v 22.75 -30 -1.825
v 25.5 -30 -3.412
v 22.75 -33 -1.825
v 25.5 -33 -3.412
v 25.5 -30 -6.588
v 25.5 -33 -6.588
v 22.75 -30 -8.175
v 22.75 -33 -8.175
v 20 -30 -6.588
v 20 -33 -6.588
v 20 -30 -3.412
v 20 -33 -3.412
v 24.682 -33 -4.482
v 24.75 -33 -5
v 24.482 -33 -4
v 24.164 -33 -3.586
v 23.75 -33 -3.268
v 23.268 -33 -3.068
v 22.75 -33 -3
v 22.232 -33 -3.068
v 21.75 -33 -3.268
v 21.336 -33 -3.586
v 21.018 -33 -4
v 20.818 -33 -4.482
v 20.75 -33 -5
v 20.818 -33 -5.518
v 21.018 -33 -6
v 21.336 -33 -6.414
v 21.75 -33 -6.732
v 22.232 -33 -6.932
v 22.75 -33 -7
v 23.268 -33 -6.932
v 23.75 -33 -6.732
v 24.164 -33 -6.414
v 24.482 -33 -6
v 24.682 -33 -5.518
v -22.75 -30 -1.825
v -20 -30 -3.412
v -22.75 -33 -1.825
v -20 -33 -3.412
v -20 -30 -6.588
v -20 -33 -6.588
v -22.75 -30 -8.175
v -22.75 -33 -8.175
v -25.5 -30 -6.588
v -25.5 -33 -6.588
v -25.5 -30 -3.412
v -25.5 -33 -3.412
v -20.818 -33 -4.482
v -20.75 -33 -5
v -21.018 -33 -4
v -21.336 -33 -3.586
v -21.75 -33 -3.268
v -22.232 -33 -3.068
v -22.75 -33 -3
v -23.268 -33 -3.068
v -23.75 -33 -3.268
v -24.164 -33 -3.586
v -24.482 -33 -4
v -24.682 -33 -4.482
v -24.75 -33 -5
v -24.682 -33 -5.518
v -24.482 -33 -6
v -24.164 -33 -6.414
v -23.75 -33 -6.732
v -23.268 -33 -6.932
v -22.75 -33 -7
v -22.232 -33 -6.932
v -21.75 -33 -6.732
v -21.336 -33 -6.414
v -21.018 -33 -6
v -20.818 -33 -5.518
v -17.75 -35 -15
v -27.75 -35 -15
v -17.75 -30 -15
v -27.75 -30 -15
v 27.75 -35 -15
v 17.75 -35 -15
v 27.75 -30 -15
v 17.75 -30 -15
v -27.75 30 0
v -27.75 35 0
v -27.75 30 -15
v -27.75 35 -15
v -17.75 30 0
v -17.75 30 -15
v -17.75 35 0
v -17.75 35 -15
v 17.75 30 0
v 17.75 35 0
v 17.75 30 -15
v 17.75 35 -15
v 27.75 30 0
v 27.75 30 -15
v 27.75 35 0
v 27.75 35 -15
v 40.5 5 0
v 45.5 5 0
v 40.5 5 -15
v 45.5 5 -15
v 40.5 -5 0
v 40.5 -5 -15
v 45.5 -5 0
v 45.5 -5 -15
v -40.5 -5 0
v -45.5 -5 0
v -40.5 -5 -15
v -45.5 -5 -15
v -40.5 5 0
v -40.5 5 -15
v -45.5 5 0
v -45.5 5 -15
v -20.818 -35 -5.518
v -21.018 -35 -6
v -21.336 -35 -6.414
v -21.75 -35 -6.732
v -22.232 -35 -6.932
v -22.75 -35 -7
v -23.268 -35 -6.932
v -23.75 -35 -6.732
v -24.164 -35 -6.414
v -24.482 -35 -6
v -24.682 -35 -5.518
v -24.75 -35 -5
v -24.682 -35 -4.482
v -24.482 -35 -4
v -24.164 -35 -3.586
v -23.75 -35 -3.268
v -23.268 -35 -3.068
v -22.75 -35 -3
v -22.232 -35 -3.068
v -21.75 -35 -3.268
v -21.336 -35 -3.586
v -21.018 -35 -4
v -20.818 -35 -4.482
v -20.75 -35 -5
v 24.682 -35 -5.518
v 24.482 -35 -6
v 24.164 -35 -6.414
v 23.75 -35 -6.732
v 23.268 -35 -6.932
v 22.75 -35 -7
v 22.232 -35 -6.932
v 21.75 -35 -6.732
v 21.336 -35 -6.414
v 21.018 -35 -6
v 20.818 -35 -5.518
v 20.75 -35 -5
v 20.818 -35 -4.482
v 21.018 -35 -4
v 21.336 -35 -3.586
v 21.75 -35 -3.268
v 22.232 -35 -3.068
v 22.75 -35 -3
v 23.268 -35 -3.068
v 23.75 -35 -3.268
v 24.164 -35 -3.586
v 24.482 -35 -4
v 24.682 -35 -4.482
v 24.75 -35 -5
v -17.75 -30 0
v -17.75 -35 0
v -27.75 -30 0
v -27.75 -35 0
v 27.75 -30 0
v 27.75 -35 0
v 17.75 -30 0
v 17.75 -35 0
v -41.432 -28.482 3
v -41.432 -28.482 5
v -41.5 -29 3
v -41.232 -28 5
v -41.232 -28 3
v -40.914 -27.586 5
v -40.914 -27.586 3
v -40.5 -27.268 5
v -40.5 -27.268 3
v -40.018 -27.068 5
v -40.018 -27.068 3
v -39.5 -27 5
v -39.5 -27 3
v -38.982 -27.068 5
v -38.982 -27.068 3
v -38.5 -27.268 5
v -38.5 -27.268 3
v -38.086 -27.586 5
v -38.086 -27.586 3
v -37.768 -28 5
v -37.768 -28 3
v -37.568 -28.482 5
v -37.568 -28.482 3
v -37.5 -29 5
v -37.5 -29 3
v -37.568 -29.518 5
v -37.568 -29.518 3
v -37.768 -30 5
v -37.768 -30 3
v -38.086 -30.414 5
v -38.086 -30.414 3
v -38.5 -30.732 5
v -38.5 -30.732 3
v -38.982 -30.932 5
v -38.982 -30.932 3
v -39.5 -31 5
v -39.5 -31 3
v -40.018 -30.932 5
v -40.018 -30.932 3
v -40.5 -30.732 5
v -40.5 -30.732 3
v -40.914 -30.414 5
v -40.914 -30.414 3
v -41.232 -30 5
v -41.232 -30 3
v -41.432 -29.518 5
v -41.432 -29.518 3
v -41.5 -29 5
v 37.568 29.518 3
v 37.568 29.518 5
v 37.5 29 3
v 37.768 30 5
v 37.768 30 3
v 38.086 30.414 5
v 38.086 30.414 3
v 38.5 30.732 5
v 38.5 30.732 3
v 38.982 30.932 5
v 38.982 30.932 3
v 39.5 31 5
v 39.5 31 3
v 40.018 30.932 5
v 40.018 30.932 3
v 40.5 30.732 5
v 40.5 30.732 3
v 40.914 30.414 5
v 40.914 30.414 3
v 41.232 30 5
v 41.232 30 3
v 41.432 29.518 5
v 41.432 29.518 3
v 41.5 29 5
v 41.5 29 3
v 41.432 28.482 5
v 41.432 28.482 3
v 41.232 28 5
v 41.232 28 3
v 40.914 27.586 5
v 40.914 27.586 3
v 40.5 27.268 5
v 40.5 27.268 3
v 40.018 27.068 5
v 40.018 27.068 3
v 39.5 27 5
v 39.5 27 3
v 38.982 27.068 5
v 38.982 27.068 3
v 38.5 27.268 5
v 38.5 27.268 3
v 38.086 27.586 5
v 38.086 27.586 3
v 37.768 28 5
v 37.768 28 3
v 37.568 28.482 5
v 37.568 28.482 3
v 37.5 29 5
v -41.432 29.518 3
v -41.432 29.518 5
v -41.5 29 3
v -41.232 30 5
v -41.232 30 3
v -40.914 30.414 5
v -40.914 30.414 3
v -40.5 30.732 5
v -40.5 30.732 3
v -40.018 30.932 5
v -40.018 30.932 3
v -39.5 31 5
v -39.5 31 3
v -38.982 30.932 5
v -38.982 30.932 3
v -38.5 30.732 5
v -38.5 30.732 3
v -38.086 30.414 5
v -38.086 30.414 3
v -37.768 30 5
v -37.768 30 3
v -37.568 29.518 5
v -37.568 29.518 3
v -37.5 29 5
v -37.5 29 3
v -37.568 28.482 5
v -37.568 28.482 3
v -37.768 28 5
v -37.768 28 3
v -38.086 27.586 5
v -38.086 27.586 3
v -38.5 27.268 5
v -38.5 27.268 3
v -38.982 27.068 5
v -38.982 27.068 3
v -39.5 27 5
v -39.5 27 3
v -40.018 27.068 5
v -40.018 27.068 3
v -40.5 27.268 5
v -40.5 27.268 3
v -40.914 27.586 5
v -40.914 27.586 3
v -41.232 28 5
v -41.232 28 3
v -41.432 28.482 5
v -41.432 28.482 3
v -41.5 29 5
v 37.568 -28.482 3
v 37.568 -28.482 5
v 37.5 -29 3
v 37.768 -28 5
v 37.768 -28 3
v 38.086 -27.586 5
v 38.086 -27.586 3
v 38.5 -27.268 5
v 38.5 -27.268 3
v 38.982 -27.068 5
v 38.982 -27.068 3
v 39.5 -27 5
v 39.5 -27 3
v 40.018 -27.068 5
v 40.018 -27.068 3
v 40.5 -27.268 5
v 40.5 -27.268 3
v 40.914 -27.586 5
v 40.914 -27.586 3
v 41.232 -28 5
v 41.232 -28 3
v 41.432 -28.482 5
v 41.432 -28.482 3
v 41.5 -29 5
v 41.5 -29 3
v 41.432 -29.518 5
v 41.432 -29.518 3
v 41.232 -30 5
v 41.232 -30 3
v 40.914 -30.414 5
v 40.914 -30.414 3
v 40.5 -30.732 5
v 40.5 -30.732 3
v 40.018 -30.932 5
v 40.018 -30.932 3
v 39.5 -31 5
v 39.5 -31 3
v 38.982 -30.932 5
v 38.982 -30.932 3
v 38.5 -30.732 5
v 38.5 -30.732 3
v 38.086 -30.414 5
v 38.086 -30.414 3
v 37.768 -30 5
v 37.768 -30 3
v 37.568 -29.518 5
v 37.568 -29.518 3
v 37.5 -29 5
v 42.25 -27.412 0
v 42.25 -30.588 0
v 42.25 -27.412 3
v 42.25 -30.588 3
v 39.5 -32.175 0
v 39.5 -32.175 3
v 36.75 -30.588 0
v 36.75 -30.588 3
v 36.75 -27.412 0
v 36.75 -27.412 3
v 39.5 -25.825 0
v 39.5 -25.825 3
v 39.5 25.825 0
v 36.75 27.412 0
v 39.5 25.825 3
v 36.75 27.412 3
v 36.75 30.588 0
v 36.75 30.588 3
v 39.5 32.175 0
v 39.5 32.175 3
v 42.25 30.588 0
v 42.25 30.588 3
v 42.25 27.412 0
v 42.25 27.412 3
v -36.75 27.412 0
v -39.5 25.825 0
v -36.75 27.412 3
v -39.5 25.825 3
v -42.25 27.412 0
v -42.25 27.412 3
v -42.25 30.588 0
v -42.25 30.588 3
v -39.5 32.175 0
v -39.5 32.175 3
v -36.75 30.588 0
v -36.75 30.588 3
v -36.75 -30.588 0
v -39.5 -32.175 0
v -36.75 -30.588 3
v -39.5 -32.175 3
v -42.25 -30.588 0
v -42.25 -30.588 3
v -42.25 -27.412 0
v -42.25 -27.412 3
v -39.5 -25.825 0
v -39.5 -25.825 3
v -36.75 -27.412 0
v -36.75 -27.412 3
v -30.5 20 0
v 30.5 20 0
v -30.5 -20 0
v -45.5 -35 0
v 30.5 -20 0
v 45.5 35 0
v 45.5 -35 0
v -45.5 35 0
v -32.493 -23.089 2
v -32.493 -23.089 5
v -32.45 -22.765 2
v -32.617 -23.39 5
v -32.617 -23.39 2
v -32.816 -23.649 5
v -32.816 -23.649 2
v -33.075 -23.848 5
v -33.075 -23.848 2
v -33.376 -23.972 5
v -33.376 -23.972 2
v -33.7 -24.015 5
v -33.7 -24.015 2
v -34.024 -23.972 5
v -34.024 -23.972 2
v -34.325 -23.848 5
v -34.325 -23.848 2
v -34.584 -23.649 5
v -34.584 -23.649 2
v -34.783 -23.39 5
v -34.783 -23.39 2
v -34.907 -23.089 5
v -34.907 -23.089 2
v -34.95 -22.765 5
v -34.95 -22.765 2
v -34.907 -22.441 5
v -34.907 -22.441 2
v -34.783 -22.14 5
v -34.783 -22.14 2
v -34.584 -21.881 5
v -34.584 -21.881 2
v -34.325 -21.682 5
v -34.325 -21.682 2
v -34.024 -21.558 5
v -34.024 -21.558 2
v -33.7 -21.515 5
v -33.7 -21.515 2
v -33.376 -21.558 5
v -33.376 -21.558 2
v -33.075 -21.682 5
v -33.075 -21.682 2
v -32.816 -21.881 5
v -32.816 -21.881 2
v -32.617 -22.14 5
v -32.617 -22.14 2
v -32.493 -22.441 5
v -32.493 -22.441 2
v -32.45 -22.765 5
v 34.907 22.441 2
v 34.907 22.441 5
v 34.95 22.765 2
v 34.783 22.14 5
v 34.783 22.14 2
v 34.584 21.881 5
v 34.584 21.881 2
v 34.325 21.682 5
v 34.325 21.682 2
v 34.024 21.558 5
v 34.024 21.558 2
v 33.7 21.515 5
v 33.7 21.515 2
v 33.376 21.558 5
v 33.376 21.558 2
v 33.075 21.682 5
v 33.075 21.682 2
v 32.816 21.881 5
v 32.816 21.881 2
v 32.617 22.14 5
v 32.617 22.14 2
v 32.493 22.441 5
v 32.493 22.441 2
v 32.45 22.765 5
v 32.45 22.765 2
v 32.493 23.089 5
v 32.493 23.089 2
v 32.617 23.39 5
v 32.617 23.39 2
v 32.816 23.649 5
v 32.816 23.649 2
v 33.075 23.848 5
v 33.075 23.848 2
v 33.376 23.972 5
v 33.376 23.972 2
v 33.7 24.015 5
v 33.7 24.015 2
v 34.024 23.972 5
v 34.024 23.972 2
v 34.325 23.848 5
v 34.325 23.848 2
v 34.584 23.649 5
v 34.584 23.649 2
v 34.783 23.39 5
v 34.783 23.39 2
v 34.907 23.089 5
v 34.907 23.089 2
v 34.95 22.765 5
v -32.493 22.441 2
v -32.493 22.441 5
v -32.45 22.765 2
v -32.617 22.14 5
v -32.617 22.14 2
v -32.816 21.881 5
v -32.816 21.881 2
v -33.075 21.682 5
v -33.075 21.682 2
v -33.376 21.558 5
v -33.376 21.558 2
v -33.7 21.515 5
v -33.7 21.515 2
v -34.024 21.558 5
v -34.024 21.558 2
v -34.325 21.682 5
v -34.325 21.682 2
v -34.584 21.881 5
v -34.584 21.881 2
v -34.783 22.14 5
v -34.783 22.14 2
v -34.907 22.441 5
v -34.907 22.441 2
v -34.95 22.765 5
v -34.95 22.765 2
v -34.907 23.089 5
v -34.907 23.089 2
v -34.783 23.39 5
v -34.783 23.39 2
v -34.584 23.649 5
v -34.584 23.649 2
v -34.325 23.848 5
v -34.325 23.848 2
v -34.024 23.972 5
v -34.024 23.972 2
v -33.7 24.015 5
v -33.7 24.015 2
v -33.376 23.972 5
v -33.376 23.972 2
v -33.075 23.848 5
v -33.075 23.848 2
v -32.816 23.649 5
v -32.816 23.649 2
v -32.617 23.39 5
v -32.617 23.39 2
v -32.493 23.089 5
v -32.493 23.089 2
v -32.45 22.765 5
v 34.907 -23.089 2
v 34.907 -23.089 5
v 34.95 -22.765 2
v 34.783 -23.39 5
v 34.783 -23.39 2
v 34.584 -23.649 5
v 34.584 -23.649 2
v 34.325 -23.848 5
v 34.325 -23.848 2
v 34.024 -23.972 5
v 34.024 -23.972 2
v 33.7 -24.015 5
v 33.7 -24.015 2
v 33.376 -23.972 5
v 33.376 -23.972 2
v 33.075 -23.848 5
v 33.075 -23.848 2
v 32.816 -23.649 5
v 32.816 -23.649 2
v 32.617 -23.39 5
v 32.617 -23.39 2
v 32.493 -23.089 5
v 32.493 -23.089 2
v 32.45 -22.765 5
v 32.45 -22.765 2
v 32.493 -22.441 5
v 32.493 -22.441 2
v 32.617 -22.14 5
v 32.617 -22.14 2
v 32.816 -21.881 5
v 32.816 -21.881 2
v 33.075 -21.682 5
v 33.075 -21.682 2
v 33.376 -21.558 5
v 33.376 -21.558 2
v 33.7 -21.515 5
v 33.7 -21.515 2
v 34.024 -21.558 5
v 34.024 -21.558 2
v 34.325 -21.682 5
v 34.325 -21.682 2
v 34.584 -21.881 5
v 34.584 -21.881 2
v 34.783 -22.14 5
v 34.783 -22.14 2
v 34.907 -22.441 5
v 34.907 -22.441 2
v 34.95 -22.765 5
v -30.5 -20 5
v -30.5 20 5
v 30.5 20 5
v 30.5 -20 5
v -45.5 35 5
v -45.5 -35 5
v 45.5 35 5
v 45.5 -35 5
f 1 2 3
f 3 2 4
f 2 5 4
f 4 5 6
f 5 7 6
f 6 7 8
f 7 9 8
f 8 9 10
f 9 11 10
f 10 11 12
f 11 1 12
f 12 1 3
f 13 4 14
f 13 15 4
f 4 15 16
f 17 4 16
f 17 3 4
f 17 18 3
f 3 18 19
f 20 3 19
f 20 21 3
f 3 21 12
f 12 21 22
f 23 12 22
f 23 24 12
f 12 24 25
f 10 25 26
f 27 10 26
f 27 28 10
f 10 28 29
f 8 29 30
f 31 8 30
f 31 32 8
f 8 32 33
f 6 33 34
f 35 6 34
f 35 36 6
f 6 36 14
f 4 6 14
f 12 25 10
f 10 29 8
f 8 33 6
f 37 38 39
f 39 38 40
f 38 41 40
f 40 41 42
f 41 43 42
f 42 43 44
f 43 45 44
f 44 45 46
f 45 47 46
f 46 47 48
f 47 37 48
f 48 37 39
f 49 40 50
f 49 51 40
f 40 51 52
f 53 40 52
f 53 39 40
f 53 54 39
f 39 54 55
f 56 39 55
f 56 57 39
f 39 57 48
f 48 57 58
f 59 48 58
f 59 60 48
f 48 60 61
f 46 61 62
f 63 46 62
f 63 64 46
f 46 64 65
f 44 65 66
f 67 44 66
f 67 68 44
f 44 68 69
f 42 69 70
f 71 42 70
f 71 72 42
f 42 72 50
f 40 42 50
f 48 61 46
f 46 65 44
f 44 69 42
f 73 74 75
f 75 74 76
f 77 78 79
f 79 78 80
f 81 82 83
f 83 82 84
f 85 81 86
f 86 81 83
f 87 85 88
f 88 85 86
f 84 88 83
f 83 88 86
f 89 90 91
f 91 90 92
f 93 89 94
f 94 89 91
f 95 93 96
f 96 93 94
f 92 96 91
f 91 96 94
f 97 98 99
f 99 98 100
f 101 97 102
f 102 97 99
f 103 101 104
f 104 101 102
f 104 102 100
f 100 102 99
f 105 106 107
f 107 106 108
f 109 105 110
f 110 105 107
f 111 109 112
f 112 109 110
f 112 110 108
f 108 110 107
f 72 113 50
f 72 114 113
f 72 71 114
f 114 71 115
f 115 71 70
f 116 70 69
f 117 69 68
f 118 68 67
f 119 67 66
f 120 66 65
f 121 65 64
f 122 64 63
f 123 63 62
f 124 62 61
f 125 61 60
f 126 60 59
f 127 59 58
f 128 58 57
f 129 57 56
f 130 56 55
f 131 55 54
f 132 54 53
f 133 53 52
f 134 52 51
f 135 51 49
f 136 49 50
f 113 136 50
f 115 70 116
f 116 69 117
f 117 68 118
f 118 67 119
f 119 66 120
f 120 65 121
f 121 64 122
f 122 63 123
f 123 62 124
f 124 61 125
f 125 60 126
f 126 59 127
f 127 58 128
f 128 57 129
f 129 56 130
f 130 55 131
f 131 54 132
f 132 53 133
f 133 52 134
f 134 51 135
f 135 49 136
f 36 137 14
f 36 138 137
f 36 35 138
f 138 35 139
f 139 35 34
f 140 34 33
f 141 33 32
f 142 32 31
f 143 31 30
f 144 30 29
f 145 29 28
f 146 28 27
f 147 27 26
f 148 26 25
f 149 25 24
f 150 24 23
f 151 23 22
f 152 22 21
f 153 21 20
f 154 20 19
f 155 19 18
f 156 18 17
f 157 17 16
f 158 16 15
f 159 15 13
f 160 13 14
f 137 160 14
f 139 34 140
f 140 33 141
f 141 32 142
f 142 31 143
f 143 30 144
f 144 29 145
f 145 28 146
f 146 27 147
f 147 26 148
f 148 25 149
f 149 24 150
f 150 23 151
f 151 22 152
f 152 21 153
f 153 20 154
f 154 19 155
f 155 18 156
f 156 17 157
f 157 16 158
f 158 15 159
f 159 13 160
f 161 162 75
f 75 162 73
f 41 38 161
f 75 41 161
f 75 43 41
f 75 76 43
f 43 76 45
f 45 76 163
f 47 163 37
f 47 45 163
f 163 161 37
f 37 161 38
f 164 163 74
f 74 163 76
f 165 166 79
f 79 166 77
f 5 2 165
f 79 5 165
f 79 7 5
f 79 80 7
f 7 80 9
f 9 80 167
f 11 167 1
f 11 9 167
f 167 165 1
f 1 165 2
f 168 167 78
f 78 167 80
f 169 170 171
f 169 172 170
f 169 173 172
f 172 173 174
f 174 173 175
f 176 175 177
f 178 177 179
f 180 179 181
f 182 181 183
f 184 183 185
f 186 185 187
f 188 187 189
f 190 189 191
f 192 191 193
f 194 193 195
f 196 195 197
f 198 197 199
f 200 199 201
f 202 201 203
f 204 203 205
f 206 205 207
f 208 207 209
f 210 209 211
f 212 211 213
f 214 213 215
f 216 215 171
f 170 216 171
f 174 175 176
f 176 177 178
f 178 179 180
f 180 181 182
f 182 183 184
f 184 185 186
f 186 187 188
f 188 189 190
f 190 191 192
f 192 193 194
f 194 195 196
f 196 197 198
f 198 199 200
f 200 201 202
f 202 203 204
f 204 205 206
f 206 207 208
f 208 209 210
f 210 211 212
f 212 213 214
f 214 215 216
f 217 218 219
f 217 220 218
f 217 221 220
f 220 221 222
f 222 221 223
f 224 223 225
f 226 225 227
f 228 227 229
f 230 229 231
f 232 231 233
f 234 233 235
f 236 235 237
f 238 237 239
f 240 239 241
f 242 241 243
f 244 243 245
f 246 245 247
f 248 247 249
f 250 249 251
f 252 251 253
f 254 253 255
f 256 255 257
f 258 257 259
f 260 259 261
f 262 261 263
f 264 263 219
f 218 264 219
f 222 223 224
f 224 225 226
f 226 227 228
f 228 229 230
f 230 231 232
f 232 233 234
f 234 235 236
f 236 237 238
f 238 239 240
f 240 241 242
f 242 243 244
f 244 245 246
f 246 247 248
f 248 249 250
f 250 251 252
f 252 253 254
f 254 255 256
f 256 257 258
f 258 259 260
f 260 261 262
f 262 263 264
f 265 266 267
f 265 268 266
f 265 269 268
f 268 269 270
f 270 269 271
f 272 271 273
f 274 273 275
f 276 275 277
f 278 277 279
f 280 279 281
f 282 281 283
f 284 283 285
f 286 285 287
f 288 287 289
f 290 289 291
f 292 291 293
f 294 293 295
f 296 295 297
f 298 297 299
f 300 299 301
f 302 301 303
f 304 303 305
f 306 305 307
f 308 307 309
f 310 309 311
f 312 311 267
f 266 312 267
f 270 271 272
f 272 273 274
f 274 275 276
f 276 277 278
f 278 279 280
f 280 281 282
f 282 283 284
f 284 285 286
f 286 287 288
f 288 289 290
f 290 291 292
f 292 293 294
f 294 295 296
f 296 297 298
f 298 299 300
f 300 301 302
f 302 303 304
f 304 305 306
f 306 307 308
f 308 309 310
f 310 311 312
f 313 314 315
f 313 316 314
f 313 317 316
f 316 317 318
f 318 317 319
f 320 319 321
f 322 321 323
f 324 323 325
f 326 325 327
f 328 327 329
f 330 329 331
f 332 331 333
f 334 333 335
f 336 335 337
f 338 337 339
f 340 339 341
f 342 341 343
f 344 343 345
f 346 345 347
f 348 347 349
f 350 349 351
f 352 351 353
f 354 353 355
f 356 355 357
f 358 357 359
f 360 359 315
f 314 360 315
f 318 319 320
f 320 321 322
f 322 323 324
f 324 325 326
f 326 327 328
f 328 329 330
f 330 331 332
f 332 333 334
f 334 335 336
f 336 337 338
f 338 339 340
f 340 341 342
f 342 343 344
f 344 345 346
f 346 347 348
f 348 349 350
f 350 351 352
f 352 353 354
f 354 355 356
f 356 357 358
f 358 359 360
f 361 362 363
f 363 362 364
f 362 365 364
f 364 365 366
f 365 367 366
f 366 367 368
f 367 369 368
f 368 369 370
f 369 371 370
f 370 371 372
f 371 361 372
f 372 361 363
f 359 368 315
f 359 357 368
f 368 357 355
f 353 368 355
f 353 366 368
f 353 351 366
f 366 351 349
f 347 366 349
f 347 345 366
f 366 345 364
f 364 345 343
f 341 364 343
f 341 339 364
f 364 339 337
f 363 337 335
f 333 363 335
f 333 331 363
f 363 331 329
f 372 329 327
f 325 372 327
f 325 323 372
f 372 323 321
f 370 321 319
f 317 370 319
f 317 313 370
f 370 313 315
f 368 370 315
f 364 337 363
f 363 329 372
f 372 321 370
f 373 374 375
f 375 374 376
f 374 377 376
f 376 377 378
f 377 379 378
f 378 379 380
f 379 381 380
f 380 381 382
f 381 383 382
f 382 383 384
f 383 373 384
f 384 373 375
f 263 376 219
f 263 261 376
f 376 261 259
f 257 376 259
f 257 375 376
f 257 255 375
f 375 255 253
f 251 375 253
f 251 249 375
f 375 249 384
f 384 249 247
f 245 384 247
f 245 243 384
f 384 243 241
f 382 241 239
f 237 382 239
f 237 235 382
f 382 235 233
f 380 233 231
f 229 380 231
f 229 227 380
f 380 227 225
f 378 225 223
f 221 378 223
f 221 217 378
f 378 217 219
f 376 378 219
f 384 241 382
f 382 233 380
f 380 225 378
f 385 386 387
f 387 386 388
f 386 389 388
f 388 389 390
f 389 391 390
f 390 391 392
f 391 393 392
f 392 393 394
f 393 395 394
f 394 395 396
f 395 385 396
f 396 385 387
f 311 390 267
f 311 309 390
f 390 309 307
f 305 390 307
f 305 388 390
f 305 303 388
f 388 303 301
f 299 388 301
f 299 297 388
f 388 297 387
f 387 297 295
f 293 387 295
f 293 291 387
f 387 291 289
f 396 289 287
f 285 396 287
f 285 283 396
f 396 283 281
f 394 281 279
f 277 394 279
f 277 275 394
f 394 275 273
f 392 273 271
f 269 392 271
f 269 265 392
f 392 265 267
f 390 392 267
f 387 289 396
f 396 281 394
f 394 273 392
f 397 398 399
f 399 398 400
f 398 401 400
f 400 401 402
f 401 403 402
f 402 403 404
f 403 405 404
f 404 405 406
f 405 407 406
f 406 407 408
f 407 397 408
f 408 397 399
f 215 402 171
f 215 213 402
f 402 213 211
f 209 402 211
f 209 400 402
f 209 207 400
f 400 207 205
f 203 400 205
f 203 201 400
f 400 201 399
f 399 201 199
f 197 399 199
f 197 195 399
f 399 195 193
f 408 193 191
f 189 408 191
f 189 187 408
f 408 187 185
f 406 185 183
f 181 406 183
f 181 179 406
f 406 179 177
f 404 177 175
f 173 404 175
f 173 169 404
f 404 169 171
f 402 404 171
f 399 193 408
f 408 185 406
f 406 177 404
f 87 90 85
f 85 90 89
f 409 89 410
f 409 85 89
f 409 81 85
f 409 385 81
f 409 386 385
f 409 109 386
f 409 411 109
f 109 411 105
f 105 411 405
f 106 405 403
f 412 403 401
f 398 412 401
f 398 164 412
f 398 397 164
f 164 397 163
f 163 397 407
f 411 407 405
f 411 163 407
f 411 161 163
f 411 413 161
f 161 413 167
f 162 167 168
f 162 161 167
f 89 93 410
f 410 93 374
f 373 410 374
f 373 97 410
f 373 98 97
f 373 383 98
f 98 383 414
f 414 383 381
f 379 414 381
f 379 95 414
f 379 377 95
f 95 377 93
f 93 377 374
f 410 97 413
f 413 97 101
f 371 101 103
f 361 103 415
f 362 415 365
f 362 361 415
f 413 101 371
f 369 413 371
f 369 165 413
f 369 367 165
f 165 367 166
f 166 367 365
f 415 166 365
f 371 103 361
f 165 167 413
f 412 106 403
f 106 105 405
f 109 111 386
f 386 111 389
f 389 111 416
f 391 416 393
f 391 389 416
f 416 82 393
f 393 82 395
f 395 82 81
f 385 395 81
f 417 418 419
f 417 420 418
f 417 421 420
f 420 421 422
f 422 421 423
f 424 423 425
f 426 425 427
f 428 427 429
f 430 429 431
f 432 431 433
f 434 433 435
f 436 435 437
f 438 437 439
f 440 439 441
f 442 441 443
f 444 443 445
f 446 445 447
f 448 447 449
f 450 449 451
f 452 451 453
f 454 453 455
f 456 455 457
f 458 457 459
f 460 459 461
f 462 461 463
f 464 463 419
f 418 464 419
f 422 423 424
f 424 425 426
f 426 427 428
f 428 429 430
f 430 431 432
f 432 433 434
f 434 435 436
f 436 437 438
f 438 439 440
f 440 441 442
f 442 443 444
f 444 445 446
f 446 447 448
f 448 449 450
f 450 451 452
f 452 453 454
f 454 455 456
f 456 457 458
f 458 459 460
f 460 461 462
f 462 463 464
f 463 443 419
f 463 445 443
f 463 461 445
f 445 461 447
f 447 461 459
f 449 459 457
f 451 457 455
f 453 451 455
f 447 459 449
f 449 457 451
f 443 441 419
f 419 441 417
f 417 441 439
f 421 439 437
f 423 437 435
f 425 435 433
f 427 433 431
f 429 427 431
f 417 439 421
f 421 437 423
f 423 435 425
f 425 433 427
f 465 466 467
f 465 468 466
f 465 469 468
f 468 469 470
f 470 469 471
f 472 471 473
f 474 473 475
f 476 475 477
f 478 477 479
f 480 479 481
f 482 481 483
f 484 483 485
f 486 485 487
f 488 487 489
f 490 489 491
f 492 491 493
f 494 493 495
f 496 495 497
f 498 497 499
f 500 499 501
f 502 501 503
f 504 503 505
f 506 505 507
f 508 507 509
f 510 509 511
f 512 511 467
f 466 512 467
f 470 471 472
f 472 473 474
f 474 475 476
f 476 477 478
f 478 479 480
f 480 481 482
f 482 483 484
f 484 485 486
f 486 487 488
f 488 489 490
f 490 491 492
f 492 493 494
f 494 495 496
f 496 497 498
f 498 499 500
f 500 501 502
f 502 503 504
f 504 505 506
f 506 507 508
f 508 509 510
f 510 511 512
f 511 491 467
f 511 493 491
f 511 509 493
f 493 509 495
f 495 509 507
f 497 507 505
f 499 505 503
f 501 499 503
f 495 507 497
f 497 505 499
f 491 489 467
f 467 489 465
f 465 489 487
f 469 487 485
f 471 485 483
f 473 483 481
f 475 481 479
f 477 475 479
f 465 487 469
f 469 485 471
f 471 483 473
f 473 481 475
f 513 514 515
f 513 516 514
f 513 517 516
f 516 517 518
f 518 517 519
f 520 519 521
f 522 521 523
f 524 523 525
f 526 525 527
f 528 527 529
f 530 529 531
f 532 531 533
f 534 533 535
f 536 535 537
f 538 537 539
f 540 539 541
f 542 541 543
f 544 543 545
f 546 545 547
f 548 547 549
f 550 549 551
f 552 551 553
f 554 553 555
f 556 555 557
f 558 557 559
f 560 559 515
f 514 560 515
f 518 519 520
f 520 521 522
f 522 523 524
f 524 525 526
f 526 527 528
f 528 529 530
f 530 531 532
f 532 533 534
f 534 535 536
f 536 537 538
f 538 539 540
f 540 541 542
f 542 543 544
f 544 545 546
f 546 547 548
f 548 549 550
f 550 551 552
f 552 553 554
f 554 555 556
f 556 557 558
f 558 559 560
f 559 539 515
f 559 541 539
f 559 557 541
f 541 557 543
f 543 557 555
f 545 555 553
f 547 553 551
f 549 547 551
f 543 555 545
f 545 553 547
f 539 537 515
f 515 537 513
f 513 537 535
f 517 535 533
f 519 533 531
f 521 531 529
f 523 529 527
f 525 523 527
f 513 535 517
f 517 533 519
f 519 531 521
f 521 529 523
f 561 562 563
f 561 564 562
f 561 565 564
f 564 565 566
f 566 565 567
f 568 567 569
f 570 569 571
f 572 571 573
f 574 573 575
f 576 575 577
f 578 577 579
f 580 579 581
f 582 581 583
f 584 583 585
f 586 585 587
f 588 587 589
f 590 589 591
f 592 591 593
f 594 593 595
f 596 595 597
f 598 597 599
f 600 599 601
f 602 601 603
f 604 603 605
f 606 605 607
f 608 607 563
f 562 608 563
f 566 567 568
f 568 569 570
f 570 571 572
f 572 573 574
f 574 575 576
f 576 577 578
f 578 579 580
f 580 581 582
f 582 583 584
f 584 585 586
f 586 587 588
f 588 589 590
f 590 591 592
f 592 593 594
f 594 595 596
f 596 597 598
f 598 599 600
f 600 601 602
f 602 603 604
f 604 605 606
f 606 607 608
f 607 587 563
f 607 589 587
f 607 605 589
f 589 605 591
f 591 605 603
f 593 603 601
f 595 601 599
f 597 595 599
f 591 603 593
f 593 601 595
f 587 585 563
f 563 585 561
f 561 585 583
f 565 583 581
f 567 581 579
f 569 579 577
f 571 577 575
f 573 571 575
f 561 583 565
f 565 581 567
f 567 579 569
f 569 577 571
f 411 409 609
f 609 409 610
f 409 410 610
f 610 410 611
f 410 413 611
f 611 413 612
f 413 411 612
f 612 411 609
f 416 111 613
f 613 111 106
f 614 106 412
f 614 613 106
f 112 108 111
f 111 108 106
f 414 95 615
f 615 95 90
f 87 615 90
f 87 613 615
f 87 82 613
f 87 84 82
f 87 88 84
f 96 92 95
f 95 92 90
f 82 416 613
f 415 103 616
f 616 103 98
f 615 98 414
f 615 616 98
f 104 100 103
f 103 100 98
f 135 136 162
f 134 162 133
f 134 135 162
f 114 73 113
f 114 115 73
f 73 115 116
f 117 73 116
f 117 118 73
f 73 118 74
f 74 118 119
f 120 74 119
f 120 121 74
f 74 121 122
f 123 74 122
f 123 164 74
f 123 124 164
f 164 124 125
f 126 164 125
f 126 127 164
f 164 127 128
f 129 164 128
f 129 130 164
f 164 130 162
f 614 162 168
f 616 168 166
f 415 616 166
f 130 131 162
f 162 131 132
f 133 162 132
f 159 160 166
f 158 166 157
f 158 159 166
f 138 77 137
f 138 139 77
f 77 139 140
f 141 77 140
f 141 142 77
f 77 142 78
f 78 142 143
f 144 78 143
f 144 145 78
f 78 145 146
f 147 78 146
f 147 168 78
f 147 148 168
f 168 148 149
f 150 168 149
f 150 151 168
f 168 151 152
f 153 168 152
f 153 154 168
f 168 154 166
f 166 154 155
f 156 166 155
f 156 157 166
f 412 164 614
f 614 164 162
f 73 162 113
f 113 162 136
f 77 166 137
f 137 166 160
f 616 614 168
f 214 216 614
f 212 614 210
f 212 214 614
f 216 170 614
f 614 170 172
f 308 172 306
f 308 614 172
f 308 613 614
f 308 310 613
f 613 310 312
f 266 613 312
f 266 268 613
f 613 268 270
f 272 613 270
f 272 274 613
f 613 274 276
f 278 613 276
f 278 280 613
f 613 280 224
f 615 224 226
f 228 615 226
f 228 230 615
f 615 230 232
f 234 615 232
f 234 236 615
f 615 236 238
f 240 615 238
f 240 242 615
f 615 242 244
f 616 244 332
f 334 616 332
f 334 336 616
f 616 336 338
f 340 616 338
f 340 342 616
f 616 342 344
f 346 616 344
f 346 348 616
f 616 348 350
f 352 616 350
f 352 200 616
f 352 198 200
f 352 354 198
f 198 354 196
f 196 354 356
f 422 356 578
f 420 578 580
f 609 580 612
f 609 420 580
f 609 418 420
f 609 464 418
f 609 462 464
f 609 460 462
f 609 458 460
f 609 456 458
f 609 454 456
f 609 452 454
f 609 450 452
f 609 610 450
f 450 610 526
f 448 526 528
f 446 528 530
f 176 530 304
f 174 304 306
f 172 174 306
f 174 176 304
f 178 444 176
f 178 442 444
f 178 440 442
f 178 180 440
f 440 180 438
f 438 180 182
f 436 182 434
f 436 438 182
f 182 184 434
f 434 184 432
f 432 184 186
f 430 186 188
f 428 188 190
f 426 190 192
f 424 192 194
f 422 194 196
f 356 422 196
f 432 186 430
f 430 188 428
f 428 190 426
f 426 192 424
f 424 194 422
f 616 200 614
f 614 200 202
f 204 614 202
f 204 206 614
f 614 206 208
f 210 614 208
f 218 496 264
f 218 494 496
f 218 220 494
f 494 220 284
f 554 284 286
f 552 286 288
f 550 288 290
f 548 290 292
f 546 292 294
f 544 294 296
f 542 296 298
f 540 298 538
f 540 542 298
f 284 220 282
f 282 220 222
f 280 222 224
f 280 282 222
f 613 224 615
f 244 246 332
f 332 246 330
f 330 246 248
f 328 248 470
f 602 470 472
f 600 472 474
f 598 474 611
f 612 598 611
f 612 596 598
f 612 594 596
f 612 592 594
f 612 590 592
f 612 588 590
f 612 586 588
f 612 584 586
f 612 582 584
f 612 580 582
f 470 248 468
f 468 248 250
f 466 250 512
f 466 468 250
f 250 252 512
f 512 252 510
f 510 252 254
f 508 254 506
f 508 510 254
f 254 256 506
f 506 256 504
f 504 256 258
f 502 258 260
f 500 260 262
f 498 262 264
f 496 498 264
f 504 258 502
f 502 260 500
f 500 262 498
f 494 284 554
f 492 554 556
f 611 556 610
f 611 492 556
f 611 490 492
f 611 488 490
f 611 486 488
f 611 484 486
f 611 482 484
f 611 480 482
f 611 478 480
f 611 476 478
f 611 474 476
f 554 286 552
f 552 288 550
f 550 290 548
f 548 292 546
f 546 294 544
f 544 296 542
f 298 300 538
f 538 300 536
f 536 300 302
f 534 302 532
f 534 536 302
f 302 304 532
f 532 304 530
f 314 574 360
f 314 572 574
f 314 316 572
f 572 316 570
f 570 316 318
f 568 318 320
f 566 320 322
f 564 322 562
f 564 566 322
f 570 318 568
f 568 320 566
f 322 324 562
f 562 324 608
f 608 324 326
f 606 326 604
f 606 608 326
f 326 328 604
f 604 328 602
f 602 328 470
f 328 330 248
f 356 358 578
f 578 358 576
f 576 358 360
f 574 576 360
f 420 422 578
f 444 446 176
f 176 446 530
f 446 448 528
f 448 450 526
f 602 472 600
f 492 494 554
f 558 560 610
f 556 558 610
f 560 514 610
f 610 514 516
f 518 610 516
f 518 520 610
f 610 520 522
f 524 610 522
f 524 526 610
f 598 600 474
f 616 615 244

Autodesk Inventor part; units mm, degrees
ref_plane "YZ Plane" through (0, 0, 0) normal (1, 0, 0) x (0, 1, 0)
ref_plane "XZ Plane" through (0, 0, 0) normal (0, 1, 0) x (-1, 0, 0)
ref_plane "XY Plane" through (0, 0, 0) normal (0, 0, 1) x (1, 0, 0)
sketch "Sketch1" plane through (0, 0, 0) normal (0, 0, 1) x (1, 0, 0)
  line L0 (-30.5, -20) -> (30.5, -20)
  line L1 (30.5, -20) -> (30.5, 20)
  line L2 (30.5, 20) -> (-30.5, 20)
  line L3 (-30.5, 20) -> (-30.5, -20)
  line L4 (-30.5, -20) -> (30.5, 20) construction
  line L5 (30.5, -20) -> (-30.5, 20) construction
  line L6 (-45.5, -35) -> (45.5, -35)
  line L7 (45.5, -35) -> (45.5, 35)
  line L8 (45.5, 35) -> (-45.5, 35)
  line L9 (-45.5, 35) -> (-45.5, -35)
  line L10 (-45.5, -35) -> (45.5, 35) construction
  line L11 (45.5, -35) -> (-45.5, 35) construction
  point P0 (0, 0)
  dimension "d0" = 61
  dimension "d1" = 40
  dimension "d2" = 15
  dimension "d3" = 15
extrude "Rim" add sketch "Sketch1" along normal blind 5
sketch "Sketch2" plane through (0, 0, 5) normal (0, 0, 1) x (1, 0, 0)
  line L0 (-33.7, -22.765) -> (33.7, -22.765) construction
  line L1 (33.7, -22.765) -> (33.7, 22.765) construction
  line L2 (33.7, 22.765) -> (-33.7, 22.765) construction
  line L3 (-33.7, 22.765) -> (-33.7, -22.765) construction
  line L4 (-33.7, -22.765) -> (33.7, 22.765) construction
  line L5 (33.7, -22.765) -> (-33.7, 22.765) construction
  circle A0 centre (33.7, 22.765) radius 1.25
  line L6 (0, 22.765) -> (0, -22.765) construction
  line L7 (-30.5, -20) -> (-30.5, 20) projected
  line L8 (-30.5, 0) -> (33.7, 0) construction
  circle A1 centre (-33.7, 22.765) radius 1.25
  circle A2 centre (33.7, -22.765) radius 1.25
  circle A3 centre (-33.7, -22.765) radius 1.25
  point P0 (0, 0)
  dimension "d6" = 67.4
  dimension "d7" = 45.53
  dimension "d8" = 2.5
extrude "Pegs" cut sketch "Sketch2" against normal blind 3
sketch "Sketch3" plane through (0, 0, 0) normal (0, 0, -1) x (-1, 0, 0)
  line L0 (-39.5, 25.8246) -> (-42.25, 27.4123)
  line L1 (-36.75, 27.4123) -> (-39.5, 25.8246)
  line L2 (-42.25, 27.4123) -> (-42.25, 30.5877)
  line L3 (-36.75, 30.5877) -> (-36.75, 27.4123)
  circle A0 centre (-39.5, 29) radius 2
  line L4 (-39.5, 32.1754) -> (-36.75, 30.5877)
  line L5 (-42.25, 30.5877) -> (-39.5, 32.1754)
  line L6 (-45.5, 35) -> (35.9035, 35)
  line L7 (-45.5, 35) -> (-45.5, 29)
  line L8 (-45.5, -35) -> (-45.5, 35) projected
  line L9 (-45.5, 29) -> (-39.5, 29) construction
  line L10 (-45.5, -35) -> (-45.5, 35) projected
  line L11 (-45.5, 35) -> (45.5, 35) projected
  line L12 (0, 35) -> (0, -35) construction
  line L13 (45.5, -35) -> (-45.5, -35) projected
  line L14 (-45.5, 0) -> (45.5, 0) construction
  line L15 (45.5, 35) -> (45.5, -35) projected
  line L16 (39.5, 25.8246) -> (42.25, 27.4123)
  line L17 (36.75, 27.4123) -> (39.5, 25.8246)
  line L18 (42.25, 27.4123) -> (42.25, 30.5877)
  line L19 (36.75, 30.5877) -> (36.75, 27.4123)
  circle A1 centre (39.5, 29) radius 2
  line L20 (39.5, 32.1754) -> (36.75, 30.5877)
  line L21 (42.25, 30.5877) -> (39.5, 32.1754)
  line L22 (45.5, 29) -> (39.5, 29) construction
  line L23 (-39.5, -25.8246) -> (-42.25, -27.4123)
  line L24 (-36.75, -27.4123) -> (-39.5, -25.8246)
  line L25 (-42.25, -27.4123) -> (-42.25, -30.5877)
  line L26 (-36.75, -30.5877) -> (-36.75, -27.4123)
  circle A2 centre (-39.5, -29) radius 2
  line L27 (-39.5, -32.1754) -> (-36.75, -30.5877)
  line L28 (-42.25, -30.5877) -> (-39.5, -32.1754)
  line L29 (36.75, -30.5877) -> (36.75, -27.4123)
  line L30 (39.5, -32.1754) -> (36.75, -30.5877)
  circle A3 centre (39.5, -29) radius 2
  line L31 (42.25, -30.5877) -> (39.5, -32.1754)
  line L32 (42.25, -27.4123) -> (42.25, -30.5877)
  line L33 (39.5, -25.8246) -> (42.25, -27.4123)
  line L34 (36.75, -27.4123) -> (39.5, -25.8246)
  point P0 (0, 0)
  dimension "d11" = 3.1754
  dimension "d12" = 4
  dimension "d13" = 6
  dimension "d14" = 6
extrude "Nut Hexes" cut sketch "Sketch3" against normal blind 3 contours L0 L2 L5 L4 L3 L1 | L17 L19 L20 L21 L18 L16 | L24 L26 L27 L28 L25 L23 | L29 L34 L33 L32 L31 L30
sketch "Sketch4" plane through (0, 0, 0) normal (0, 0, -1) x (-1, 0, 0)
  circle A0 centre (-39.5, 29) radius 2 projected
  circle A1 centre (39.5, 29) radius 2 projected
  circle A2 centre (39.5, -29) radius 2 projected
  circle A3 centre (-39.5, -29) radius 2 projected
  point P0 (0, 0)
extrude "Bolt Holes" cut sketch "Sketch4" against normal up to next
sketch "For Construction" plane through (0, 0, 5) normal (0, 0, 1) x (1, 0, 0)
  circle A0 centre (33.7, -22.765) radius 1.25 projected
  circle A1 centre (39.5, -29) radius 2 projected
  point P0 (0, 0)
  point P1 (34.95, -22.765)
  point P2 (37.901, -27.7986)
  dimension "d19" = 5.2656
sketch "Sketch7" plane through (0, 0, 0) normal (0, 0, -1) x (-1, 0, 0)
  line L0 (45.5, -35) -> (-45.5, -35) projected
  line L1 (45.5, -35) -> (0, -35)
  line L2 (27.75, -35) -> (17.75, -35)
  line L3 (17.75, -35) -> (17.75, -30)
  line L4 (17.75, -30) -> (27.75, -30)
  line L5 (27.75, -30) -> (27.75, -35)
  line L6 (0, -35) -> (0, 35.2559) construction
  line L7 (-27.75, -35) -> (-17.75, -35)
  line L8 (-17.75, -35) -> (-17.75, -30)
  line L9 (-17.75, -30) -> (-27.75, -30)
  line L10 (-27.75, -30) -> (-27.75, -35)
  point P0 (0, 0)
  point P1 (22.75, -35)
  point P2 (-22.75, -35)
  dimension "d20" = 5
  dimension "d21" = 10
extrude "Attachment Points" add sketch "Sketch7" along normal blind 10
sketch "Sketch9" plane through (-45.5, -35, 5) normal (0, -1, 0) x (1, 0, 0)
  circle A0 centre (22.75, -10) radius 2 projected
  circle A1 centre (68.25, -10) radius 2 projected
  point P0 (45.5, -5)
  point P1 (22.75, -8)
  point P2 (68.25, -8)
extrude "Connection Holes" cut sketch "Sketch9" against normal up to next
sketch "Sketch10" plane through (0, 0, 0) normal (0, 0, -1) x (-1, 0, 0)
  line L0 (45.5, 35) -> (45.5, -35) projected
  line L1 (-45.5, -35) -> (-45.5, 35) projected
  line L2 (-45.5, 35) -> (45.5, 35) projected
  line L3 (0, 35) -> (45.5, 35)
  line L4 (0, 35) -> (-45.5, 35)
  line L5 (45.5, -5) -> (40.5, -5)
  line L6 (40.5, -5) -> (40.5, 5)
  line L7 (40.5, 5) -> (45.5, 5)
  line L8 (45.5, 5) -> (45.5, -5)
  line L9 (17.75, -35) -> (-17.75, -35) projected
  line L10 (0, -35) -> (0, -19.876) construction
  line L11 (-45.5, 35) -> (-45.5, -35)
  line L12 (-45.5, -5) -> (-40.5, -5)
  line L13 (-40.5, -5) -> (-40.5, 5)
  line L14 (-40.5, 5) -> (-45.5, 5)
  line L15 (-45.5, 5) -> (-45.5, -5)
  line L16 (27.75, 35) -> (17.75, 35)
  line L17 (17.75, 35) -> (17.75, 30)
  line L18 (17.75, 30) -> (27.75, 30)
  line L19 (27.75, 30) -> (27.75, 35)
  line L20 (-27.75, 35) -> (-17.75, 35)
  line L21 (-17.75, 35) -> (-17.75, 30)
  line L22 (-17.75, 30) -> (-27.75, 30)
  line L23 (-27.75, 30) -> (-27.75, 35)
  point P0 (0, 0)
  point P1 (45.5, 0)
  point P2 (-45.5, 0)
  point P3 (22.75, 35)
  point P4 (-22.75, 35)
  point P5 (45.5, 0)
  point P6 (-45.5, 0)
  point P7 (-45.5, 0)
  dimension "d28" = 5
  dimension "d29" = 10
  dimension "d30" = 5
  dimension "d31" = 10
extrude "Legs 1" add sketch "Sketch10" along normal blind 15
sketch "Sketch11" plane through (0, 0, -10) normal (0, 0, -1) x (-1, 0, 0)
  line L0 (27.75, -30) -> (27.75, -35) projected
  line L1 (27.75, -30) -> (17.75, -30) projected
  line L2 (27.75, -35) -> (17.75, -35)
  line L3 (17.75, -35) -> (17.75, -30)
  line L4 (17.75, -30) -> (27.75, -30)
  line L5 (27.75, -30) -> (27.75, -35)
  line L6 (-17.75, -35) -> (-17.75, -30) projected
  line L7 (-27.75, -30) -> (-27.75, -35) projected
  line L8 (-17.75, -35) -> (-27.75, -35)
  line L9 (-27.75, -35) -> (-27.75, -30)
  line L10 (-27.75, -30) -> (-17.75, -30)
  line L11 (-17.75, -30) -> (-17.75, -35)
  point P0 (0, 0)
extrude "Extrusion9" add sketch "Sketch11" along normal blind 5
ref_plane "Work Plane2" through (-30.5, 0, 0) normal (0, 1, 0) x (1, 0, 0)
sketch "Sketch12" plane through (17.75, -30, 0) normal (0, 1, 0) x (1, 0, 0)
  line L0 (5, 1.8246) -> (2.25, 3.4123)
  line L1 (7.75, 3.4123) -> (5, 1.8246)
  line L2 (2.25, 3.4123) -> (2.25, 6.5877)
  line L3 (7.75, 6.5877) -> (7.75, 3.4123)
  line L4 (5, 8.1754) -> (7.75, 6.5877)
  line L5 (2.25, 6.5877) -> (5, 8.1754)
  circle A0 centre (5, 5) radius 2 projected
  line L6 (0, 0) -> (0, 15) projected
  line L7 (-40.5, 1.8246) -> (-43.25, 3.4123)
  line L8 (-37.75, 3.4123) -> (-40.5, 1.8246)
  line L9 (-43.25, 3.4123) -> (-43.25, 6.5877)
  line L10 (-37.75, 6.5877) -> (-37.75, 3.4123)
  line L11 (-40.5, 8.1754) -> (-37.75, 6.5877)
  line L12 (-43.25, 6.5877) -> (-40.5, 8.1754)
  circle A1 centre (-40.5, 5) radius 2 projected
  line L13 (-35.5, 0) -> (-35.5, 15) projected
  point P0 (-17.75, 0)
  point P1 (-5.2731, 15.8695)
  point P2 (-26.4318, 33.2663)
  dimension "d36" = 3.1754
  dimension "d38" = 3.1754
extrude "Extrusion10" cut sketch "Sketch12" against normal blind 3
properties part number "Joystickboard Holder"
